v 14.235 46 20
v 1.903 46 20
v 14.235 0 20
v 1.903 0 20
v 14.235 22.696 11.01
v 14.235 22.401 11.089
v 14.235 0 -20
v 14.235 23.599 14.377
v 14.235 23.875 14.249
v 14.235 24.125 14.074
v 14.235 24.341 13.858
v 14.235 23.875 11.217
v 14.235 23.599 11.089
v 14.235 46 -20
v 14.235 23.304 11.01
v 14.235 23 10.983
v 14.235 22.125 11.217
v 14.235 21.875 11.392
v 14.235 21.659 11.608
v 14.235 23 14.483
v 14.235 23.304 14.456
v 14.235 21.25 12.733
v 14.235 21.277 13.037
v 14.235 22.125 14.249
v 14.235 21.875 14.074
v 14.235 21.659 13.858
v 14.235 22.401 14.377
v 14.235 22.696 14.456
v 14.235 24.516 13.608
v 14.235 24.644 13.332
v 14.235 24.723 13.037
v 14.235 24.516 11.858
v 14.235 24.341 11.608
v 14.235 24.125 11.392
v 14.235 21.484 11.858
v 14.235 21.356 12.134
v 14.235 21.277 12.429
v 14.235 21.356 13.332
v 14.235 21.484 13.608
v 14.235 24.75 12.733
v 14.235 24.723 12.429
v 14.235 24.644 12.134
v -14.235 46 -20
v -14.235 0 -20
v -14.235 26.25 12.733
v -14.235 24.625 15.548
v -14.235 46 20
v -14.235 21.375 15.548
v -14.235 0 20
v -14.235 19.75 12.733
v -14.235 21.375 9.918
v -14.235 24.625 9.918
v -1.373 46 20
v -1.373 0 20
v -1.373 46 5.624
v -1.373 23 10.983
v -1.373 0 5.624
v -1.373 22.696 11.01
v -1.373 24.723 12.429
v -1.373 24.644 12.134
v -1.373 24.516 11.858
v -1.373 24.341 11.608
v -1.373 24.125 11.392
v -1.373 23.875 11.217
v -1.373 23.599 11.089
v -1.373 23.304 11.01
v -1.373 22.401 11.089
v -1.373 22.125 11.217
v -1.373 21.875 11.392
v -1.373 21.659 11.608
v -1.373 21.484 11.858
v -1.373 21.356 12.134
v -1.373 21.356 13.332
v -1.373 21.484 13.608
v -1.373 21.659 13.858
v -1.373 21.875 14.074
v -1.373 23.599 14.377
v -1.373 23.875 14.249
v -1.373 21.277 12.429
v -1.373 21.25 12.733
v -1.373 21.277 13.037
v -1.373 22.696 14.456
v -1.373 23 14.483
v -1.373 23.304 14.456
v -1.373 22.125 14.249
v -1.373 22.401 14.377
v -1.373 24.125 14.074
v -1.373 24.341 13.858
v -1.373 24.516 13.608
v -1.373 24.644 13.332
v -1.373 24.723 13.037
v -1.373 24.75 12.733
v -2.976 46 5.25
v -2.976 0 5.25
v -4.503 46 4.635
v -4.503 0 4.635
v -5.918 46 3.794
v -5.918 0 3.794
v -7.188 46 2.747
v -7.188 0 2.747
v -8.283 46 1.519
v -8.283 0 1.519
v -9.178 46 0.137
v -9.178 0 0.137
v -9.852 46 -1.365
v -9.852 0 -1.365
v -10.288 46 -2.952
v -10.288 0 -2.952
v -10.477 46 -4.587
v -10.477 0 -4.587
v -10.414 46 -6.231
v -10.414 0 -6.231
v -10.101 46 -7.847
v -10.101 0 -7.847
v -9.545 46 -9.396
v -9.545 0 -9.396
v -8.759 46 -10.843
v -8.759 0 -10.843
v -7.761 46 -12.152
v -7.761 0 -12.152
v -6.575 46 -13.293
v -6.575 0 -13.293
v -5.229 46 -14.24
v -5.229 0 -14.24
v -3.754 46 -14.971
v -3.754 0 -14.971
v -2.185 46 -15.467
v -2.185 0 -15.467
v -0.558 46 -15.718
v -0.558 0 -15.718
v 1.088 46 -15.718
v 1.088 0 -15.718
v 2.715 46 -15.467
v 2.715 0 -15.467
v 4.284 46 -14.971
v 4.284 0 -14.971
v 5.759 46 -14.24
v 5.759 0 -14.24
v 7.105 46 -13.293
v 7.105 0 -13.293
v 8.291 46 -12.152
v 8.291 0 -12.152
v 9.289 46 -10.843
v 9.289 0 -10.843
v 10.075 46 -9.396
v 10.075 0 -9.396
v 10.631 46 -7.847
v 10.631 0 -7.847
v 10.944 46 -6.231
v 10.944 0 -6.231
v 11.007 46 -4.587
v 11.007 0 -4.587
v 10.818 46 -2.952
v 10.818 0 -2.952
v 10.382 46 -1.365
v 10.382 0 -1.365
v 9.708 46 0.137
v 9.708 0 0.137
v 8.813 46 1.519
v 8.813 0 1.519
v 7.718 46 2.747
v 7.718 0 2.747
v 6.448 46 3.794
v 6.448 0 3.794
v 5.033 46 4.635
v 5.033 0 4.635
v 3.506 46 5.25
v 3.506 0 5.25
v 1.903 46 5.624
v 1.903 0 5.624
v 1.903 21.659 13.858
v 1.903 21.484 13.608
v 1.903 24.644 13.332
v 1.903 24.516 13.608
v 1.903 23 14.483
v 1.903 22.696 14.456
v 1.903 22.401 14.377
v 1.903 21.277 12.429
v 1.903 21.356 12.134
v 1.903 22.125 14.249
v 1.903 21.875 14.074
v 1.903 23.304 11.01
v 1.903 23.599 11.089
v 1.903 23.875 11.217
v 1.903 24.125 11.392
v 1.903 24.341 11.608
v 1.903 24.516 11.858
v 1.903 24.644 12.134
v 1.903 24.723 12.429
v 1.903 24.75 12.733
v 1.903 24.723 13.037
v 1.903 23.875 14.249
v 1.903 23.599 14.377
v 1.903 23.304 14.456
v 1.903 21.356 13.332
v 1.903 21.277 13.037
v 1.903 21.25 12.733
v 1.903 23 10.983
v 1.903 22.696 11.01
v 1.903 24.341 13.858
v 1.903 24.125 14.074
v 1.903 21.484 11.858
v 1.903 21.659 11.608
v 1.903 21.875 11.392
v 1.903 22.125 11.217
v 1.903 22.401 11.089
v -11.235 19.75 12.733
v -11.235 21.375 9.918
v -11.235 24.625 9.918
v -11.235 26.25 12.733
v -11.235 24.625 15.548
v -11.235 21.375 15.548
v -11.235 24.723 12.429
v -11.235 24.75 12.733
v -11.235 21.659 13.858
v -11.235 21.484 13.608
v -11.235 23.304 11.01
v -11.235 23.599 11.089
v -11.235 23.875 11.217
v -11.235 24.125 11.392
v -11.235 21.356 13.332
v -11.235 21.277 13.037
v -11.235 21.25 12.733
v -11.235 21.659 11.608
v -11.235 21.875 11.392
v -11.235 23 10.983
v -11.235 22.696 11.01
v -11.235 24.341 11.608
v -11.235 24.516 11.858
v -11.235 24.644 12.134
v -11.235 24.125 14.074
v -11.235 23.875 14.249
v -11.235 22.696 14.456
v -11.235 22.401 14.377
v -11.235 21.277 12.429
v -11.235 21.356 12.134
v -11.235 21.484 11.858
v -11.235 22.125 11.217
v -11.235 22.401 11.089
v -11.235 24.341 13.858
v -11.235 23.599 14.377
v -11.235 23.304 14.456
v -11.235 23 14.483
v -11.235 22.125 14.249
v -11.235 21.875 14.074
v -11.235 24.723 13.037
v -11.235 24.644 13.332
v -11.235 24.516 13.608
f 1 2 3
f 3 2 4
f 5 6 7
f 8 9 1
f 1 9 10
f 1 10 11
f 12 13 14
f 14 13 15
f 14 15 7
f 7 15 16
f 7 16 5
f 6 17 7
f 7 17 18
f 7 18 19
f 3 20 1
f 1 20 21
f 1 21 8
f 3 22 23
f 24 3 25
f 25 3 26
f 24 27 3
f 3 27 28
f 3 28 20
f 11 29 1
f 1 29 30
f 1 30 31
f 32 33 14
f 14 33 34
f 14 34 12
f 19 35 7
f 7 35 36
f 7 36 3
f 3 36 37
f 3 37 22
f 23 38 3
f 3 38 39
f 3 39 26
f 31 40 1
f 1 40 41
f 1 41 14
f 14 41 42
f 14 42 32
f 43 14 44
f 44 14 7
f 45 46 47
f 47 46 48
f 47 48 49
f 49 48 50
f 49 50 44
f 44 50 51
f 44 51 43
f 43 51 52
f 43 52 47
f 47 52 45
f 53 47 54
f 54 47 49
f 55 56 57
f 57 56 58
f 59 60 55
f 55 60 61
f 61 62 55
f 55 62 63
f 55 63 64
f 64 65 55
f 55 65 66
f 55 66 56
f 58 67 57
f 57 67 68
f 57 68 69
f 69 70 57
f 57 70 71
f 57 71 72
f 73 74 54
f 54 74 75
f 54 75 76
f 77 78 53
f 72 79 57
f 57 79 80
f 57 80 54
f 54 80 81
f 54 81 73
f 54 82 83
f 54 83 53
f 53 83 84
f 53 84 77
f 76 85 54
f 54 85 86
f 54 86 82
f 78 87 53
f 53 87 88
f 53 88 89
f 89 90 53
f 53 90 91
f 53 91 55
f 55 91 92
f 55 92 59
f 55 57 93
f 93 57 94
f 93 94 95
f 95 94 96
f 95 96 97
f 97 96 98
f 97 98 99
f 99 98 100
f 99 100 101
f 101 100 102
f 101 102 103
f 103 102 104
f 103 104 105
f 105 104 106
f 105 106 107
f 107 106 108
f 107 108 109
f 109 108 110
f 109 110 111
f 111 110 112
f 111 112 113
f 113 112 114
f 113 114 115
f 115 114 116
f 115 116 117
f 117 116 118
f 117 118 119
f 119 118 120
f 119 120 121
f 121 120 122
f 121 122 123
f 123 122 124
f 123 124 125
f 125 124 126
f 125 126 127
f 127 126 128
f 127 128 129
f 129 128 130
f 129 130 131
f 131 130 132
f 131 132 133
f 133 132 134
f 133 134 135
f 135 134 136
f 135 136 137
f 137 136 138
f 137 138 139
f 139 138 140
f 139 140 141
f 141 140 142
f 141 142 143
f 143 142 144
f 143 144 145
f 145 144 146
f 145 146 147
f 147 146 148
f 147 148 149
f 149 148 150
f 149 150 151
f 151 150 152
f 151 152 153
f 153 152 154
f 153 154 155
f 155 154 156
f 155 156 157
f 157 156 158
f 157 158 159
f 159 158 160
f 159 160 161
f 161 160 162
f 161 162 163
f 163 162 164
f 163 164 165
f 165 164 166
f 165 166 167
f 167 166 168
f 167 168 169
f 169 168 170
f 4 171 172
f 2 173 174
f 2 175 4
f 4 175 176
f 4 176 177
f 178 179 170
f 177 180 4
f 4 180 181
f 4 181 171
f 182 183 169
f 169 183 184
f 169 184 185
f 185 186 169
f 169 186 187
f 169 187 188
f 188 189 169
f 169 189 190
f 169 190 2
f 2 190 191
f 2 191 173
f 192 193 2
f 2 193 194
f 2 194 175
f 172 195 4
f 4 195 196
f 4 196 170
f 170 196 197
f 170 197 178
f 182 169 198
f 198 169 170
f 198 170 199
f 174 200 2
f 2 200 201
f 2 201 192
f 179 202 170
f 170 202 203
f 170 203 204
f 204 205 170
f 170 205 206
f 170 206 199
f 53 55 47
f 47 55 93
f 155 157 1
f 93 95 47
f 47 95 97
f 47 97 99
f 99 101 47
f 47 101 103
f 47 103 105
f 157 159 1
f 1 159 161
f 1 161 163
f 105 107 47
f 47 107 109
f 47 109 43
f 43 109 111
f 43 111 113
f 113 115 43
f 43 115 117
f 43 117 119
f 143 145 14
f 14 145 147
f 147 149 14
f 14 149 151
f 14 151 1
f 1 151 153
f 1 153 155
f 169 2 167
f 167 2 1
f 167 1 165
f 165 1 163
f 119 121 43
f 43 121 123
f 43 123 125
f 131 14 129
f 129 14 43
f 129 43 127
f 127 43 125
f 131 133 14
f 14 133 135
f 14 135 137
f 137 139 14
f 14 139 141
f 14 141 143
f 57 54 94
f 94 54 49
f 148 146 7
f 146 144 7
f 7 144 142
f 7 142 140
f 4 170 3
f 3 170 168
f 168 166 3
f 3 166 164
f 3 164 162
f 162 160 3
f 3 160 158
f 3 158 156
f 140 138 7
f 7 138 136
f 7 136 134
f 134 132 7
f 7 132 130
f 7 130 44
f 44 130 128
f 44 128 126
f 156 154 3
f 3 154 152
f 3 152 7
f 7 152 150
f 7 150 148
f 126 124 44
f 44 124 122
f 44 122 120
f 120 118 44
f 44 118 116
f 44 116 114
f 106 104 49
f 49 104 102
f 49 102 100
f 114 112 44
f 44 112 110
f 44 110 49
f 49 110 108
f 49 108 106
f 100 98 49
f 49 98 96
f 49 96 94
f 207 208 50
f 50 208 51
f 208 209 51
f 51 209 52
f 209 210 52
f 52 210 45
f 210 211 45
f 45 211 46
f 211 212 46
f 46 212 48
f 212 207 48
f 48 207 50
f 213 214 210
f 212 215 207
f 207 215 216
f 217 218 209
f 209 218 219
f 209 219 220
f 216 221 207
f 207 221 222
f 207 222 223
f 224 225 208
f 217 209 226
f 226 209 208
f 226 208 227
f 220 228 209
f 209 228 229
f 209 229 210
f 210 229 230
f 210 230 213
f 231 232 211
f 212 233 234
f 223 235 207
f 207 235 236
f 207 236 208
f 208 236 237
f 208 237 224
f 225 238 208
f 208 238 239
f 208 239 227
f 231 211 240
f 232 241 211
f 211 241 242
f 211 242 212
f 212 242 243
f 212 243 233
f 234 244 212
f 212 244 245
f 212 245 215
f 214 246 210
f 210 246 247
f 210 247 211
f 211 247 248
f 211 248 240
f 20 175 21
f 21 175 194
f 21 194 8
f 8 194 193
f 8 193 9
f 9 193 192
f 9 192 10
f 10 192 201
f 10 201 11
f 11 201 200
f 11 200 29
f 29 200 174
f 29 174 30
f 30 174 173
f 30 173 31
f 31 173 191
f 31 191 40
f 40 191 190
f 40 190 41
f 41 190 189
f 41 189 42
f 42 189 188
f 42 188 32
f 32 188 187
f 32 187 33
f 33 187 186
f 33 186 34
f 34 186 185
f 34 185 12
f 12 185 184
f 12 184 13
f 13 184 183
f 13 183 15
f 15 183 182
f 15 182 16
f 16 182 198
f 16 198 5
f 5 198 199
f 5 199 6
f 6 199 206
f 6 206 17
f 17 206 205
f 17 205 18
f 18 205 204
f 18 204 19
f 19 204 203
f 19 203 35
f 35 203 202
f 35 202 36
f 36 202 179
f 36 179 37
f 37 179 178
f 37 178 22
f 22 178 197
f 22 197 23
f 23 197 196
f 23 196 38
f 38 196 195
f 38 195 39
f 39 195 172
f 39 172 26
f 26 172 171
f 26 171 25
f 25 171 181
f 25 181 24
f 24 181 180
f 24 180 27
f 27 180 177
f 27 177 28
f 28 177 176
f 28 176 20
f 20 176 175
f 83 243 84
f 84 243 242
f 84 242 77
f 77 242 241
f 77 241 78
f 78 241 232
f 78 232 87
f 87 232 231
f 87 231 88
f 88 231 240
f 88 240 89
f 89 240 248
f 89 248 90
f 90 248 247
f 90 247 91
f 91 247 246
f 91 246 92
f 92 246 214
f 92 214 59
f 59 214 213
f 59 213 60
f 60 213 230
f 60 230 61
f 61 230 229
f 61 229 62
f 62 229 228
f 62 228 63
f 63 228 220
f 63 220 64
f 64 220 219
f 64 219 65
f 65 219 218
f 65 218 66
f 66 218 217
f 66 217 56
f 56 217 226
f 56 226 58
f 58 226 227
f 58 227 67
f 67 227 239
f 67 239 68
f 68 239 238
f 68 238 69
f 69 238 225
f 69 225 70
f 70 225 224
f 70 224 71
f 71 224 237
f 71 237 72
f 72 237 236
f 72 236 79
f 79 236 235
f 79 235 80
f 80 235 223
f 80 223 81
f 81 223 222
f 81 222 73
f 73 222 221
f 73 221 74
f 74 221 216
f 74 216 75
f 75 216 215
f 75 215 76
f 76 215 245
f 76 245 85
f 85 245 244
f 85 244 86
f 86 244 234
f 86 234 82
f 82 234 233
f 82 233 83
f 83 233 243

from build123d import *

# Parameters (mm, degrees)
EXTRUDE_1_DEPTH     = 46
CUT_EXTRUDE_1_DEPTH = 3
SKETCH_3_R          = 1.75
CUT_EXTRUDE_2_DEPTH = 26.47


with BuildPart() as part:
    # Эскиз1 → Бобышка-Вытянуть1 (new body)
    with BuildSketch(Plane(origin=(0, 0, 0), x_dir=(1, 0, 0), z_dir=(0, 1, 0))):
        with BuildLine():
            Line((-14.235, 20), (14.235, 20))
            Line((14.235, 20), (14.235, -20))
            Line((14.235, -20), (1.903095238, -20))
            Line((1.903095238, -20), (1.903095238, -5.624459703))
            ThreePointArc((1.903095238, -5.624459703), (0.265, 15.75), (-1.373095238, -5.624459703))
            Line((-1.373095238, -5.624459703), (-1.373095238, -20))
            Line((-1.373095238, -20), (-14.235, -20))
            Line((-14.235, -20), (-14.235, 20))
        make_face()
    extrude(amount=EXTRUDE_1_DEPTH)

    # Эскиз2 → Вырез-Вытянуть1 (cut)
    with BuildSketch(Plane.ZY.offset(14.235)):
        Polygon((12.733013434, 19.75), (15.547595996, 21.375), (15.547595996, 24.625), (12.733013434, 26.25), (9.918430872, 24.625), (9.918430872, 21.375), align=None)
    extrude(amount=-CUT_EXTRUDE_1_DEPTH, mode=Mode.SUBTRACT)

    # Эскиз3 → Вырез-Вытянуть2 (cut, through all)
    with BuildSketch(Plane.ZY.offset(11.235)):
        with Locations((12.733013434, 23)):
            Circle(SKETCH_3_R)
    extrude(amount=-CUT_EXTRUDE_2_DEPTH, mode=Mode.SUBTRACT)


solid = part.part
